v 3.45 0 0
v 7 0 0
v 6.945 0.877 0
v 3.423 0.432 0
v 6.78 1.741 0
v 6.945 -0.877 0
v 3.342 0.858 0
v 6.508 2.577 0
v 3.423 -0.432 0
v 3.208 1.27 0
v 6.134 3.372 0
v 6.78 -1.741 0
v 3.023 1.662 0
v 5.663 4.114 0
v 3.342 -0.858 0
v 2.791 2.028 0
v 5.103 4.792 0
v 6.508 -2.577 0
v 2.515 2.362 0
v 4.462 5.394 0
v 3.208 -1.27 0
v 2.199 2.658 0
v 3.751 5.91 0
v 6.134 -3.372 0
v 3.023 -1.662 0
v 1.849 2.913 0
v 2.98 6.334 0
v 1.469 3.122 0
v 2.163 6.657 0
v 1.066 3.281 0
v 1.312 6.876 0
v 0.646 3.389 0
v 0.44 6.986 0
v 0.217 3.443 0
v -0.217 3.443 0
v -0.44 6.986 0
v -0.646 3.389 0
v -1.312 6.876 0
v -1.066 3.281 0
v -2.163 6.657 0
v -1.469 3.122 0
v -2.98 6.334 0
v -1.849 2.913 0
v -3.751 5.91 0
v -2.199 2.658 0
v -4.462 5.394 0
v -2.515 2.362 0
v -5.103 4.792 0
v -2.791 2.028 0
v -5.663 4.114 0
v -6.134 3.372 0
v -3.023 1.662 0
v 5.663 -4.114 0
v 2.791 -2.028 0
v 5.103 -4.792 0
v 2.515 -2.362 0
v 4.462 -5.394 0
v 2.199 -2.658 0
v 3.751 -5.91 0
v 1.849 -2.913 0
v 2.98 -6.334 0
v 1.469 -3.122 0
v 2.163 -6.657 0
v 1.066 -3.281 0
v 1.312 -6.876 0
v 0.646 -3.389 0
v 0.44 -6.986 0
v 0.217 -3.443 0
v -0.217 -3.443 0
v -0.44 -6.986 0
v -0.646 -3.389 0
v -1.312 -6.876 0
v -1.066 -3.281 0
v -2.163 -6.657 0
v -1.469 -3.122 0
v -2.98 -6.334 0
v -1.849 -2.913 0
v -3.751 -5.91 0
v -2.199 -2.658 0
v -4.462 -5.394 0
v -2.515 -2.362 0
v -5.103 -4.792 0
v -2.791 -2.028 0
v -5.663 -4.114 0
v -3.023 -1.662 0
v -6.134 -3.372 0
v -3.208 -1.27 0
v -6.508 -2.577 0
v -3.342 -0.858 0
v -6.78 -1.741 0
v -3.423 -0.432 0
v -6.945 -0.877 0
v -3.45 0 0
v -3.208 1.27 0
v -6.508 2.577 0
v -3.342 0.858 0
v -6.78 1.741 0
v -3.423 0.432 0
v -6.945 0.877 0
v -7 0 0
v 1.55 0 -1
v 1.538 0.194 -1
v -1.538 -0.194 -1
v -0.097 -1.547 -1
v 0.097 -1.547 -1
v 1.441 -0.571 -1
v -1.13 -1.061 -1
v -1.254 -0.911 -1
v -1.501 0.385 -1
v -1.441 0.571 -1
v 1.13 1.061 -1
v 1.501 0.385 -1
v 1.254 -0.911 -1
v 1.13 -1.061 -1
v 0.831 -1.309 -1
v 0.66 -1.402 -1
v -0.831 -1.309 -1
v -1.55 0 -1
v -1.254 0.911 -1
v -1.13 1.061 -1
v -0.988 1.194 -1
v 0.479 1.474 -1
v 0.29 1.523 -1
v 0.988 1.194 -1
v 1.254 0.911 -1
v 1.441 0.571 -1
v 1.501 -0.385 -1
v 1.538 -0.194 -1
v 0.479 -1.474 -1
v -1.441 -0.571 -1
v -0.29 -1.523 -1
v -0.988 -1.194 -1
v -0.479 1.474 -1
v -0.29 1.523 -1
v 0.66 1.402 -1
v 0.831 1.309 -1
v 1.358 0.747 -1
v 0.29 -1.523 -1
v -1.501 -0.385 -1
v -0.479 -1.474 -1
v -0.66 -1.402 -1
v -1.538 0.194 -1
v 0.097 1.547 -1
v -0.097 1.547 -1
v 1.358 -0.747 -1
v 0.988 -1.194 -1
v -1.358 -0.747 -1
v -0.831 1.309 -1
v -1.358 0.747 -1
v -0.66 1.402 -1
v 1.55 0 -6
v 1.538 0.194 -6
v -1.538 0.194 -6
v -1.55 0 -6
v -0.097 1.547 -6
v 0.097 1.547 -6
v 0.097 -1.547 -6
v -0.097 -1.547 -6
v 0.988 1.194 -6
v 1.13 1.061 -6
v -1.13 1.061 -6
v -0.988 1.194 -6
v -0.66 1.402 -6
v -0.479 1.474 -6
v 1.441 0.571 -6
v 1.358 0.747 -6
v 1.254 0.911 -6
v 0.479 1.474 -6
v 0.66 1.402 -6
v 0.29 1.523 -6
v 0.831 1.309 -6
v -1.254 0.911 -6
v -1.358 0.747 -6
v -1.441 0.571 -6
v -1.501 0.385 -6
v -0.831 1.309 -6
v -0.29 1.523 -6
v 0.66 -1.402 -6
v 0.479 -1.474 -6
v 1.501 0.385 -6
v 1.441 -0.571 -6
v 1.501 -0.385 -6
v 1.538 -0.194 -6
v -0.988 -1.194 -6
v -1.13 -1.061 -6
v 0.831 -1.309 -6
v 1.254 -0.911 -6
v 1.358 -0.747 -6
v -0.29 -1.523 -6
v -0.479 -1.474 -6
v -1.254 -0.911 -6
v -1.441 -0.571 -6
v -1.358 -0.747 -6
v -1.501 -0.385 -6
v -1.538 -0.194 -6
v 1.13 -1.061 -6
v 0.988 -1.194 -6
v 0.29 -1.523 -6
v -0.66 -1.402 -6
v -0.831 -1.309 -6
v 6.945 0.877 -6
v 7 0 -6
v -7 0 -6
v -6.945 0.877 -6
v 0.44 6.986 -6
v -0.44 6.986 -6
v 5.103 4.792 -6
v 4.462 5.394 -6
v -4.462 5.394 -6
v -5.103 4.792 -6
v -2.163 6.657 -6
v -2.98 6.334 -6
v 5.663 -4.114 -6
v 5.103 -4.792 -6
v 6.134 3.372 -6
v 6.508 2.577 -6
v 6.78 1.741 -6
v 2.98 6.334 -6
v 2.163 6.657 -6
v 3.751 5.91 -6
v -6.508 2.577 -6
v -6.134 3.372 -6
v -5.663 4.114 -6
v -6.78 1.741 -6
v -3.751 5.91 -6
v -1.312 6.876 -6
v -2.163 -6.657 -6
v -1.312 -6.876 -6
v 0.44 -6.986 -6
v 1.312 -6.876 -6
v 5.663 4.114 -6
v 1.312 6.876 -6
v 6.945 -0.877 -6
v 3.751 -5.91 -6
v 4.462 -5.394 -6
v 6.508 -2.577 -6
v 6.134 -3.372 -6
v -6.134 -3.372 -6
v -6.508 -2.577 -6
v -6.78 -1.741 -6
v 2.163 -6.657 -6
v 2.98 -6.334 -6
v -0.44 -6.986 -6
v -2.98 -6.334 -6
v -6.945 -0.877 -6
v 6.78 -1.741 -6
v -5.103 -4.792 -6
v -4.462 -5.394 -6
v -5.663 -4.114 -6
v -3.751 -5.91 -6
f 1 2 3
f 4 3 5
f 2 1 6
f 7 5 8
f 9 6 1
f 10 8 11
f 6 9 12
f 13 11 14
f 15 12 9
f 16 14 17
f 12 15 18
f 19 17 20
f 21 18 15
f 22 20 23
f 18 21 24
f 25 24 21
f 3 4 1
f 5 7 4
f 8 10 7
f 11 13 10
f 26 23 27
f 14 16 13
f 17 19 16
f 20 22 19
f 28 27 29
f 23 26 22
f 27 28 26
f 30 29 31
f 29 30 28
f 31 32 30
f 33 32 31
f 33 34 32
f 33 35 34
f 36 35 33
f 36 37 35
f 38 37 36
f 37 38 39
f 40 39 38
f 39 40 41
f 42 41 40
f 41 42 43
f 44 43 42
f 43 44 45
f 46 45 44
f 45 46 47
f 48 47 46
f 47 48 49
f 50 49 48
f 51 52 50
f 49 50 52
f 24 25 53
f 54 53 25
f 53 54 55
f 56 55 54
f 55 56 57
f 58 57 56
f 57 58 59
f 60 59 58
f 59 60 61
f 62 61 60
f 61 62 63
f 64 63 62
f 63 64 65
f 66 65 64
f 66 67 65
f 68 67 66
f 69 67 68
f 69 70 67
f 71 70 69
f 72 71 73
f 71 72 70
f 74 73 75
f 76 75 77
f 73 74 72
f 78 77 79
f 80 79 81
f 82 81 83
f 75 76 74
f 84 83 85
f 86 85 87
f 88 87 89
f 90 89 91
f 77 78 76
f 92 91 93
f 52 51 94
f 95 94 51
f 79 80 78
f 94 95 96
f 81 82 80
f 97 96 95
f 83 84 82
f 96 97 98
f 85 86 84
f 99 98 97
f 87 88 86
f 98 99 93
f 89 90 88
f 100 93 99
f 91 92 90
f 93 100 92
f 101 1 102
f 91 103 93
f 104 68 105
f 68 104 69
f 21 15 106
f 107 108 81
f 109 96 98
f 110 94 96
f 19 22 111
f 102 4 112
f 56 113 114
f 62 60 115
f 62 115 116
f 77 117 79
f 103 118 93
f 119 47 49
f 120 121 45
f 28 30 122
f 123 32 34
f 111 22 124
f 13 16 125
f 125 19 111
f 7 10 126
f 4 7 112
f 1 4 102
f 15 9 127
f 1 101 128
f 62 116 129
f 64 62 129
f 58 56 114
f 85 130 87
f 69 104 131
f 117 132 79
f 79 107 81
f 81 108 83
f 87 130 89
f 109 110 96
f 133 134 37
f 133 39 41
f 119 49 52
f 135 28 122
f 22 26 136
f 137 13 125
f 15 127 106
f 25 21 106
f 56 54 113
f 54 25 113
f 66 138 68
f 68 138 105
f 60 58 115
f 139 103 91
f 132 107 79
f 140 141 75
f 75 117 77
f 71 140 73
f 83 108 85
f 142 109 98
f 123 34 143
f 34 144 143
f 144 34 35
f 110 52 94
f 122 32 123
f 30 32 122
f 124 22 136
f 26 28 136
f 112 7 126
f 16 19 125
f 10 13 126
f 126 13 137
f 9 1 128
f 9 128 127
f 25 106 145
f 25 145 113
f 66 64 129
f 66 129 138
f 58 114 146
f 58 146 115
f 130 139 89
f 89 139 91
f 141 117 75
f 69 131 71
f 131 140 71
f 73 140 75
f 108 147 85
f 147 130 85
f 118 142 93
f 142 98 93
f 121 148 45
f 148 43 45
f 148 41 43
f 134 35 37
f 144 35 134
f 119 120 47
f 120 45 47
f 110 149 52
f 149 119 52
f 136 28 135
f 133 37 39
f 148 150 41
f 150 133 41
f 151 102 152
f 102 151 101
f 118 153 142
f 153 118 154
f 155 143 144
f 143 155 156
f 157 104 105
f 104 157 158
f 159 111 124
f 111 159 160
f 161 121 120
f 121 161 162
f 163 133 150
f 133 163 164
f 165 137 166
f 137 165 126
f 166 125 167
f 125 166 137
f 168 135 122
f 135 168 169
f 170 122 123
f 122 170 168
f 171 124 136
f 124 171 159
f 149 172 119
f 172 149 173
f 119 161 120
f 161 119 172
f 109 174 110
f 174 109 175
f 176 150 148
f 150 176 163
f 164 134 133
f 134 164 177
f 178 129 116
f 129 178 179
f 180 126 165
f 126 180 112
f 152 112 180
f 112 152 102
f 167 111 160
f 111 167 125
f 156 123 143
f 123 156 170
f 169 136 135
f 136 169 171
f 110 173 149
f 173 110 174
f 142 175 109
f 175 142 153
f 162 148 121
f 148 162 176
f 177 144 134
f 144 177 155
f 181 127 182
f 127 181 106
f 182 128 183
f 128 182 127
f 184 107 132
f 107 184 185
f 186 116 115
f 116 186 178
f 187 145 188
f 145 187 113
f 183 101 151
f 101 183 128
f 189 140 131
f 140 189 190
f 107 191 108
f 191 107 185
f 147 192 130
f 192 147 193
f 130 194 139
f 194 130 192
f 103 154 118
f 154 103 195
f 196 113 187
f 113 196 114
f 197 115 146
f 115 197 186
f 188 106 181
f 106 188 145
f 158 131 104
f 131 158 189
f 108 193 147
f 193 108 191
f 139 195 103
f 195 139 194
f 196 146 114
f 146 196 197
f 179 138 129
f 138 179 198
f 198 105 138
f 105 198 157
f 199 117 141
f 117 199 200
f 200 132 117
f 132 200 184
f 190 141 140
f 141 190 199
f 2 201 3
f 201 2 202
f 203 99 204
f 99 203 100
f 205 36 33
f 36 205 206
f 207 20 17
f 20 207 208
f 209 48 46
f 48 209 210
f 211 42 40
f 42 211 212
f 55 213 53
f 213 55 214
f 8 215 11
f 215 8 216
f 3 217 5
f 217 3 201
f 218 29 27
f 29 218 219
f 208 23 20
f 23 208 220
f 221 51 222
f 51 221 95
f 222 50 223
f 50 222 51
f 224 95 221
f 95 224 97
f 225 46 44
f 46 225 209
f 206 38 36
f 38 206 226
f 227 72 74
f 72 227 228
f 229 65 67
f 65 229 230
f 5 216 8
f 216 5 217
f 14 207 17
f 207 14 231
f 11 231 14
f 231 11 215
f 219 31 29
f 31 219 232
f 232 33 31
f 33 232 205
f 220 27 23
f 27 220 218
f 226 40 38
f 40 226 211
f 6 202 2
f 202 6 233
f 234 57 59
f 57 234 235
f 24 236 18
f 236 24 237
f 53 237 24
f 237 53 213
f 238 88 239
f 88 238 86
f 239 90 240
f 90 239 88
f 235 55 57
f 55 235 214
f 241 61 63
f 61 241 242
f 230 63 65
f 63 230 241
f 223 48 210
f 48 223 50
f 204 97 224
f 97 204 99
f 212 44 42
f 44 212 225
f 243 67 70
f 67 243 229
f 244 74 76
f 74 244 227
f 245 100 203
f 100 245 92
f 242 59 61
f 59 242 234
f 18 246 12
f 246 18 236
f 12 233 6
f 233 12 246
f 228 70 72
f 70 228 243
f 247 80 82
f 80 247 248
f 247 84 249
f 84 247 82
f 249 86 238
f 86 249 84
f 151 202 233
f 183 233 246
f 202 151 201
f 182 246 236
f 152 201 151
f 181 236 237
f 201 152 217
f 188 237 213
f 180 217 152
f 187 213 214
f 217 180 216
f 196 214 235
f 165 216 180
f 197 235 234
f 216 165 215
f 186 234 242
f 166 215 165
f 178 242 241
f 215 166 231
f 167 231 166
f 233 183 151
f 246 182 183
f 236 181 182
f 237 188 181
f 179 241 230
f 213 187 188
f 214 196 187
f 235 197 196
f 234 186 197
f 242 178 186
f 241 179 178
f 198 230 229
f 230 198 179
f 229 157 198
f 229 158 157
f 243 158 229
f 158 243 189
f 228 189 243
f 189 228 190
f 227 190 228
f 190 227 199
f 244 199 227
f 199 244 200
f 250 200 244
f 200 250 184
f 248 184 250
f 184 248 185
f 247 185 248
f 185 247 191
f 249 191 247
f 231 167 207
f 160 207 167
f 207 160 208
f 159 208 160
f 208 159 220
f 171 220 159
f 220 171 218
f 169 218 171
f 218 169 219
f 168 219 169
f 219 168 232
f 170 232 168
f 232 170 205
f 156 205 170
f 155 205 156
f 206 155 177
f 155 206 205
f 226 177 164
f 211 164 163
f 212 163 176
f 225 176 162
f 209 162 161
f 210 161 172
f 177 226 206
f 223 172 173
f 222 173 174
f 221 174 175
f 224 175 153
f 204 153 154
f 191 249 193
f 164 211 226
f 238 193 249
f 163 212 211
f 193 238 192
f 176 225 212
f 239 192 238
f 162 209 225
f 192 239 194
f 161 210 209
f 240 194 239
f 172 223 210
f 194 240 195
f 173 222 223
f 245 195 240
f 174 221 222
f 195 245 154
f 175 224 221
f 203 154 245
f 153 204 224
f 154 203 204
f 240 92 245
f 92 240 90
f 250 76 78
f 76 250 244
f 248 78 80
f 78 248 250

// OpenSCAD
$fn = 50;


difference() {
	union() {
		translate(v = [0, 0, -6.0000000000]) {
			cylinder(h = 6, r = 7.0000000000);
		}
	}
	union() {
		translate(v = [0, 0, 0]) {
			rotate(a = [0, 0, 0]) {
				difference() {
					union() {
						translate(v = [0, 0, -9.0000000000]) {
							cylinder(h = 9, r = 1.2500000000);
						}
						translate(v = [0, 0, -1.0000000000]) {
							cylinder(h = 1.0000000000, r1 = 1.5500000000, r2 = 3.4500000000);
						}
						translate(v = [0, 0, -9.0000000000]) {
							cylinder(h = 9, r = 1.5500000000);
						}
						translate(v = [0, 0, -9.0000000000]) {
							cylinder(h = 9, r = 1.2500000000);
						}
					}
					union();
				}
			}
		}
	}
}
